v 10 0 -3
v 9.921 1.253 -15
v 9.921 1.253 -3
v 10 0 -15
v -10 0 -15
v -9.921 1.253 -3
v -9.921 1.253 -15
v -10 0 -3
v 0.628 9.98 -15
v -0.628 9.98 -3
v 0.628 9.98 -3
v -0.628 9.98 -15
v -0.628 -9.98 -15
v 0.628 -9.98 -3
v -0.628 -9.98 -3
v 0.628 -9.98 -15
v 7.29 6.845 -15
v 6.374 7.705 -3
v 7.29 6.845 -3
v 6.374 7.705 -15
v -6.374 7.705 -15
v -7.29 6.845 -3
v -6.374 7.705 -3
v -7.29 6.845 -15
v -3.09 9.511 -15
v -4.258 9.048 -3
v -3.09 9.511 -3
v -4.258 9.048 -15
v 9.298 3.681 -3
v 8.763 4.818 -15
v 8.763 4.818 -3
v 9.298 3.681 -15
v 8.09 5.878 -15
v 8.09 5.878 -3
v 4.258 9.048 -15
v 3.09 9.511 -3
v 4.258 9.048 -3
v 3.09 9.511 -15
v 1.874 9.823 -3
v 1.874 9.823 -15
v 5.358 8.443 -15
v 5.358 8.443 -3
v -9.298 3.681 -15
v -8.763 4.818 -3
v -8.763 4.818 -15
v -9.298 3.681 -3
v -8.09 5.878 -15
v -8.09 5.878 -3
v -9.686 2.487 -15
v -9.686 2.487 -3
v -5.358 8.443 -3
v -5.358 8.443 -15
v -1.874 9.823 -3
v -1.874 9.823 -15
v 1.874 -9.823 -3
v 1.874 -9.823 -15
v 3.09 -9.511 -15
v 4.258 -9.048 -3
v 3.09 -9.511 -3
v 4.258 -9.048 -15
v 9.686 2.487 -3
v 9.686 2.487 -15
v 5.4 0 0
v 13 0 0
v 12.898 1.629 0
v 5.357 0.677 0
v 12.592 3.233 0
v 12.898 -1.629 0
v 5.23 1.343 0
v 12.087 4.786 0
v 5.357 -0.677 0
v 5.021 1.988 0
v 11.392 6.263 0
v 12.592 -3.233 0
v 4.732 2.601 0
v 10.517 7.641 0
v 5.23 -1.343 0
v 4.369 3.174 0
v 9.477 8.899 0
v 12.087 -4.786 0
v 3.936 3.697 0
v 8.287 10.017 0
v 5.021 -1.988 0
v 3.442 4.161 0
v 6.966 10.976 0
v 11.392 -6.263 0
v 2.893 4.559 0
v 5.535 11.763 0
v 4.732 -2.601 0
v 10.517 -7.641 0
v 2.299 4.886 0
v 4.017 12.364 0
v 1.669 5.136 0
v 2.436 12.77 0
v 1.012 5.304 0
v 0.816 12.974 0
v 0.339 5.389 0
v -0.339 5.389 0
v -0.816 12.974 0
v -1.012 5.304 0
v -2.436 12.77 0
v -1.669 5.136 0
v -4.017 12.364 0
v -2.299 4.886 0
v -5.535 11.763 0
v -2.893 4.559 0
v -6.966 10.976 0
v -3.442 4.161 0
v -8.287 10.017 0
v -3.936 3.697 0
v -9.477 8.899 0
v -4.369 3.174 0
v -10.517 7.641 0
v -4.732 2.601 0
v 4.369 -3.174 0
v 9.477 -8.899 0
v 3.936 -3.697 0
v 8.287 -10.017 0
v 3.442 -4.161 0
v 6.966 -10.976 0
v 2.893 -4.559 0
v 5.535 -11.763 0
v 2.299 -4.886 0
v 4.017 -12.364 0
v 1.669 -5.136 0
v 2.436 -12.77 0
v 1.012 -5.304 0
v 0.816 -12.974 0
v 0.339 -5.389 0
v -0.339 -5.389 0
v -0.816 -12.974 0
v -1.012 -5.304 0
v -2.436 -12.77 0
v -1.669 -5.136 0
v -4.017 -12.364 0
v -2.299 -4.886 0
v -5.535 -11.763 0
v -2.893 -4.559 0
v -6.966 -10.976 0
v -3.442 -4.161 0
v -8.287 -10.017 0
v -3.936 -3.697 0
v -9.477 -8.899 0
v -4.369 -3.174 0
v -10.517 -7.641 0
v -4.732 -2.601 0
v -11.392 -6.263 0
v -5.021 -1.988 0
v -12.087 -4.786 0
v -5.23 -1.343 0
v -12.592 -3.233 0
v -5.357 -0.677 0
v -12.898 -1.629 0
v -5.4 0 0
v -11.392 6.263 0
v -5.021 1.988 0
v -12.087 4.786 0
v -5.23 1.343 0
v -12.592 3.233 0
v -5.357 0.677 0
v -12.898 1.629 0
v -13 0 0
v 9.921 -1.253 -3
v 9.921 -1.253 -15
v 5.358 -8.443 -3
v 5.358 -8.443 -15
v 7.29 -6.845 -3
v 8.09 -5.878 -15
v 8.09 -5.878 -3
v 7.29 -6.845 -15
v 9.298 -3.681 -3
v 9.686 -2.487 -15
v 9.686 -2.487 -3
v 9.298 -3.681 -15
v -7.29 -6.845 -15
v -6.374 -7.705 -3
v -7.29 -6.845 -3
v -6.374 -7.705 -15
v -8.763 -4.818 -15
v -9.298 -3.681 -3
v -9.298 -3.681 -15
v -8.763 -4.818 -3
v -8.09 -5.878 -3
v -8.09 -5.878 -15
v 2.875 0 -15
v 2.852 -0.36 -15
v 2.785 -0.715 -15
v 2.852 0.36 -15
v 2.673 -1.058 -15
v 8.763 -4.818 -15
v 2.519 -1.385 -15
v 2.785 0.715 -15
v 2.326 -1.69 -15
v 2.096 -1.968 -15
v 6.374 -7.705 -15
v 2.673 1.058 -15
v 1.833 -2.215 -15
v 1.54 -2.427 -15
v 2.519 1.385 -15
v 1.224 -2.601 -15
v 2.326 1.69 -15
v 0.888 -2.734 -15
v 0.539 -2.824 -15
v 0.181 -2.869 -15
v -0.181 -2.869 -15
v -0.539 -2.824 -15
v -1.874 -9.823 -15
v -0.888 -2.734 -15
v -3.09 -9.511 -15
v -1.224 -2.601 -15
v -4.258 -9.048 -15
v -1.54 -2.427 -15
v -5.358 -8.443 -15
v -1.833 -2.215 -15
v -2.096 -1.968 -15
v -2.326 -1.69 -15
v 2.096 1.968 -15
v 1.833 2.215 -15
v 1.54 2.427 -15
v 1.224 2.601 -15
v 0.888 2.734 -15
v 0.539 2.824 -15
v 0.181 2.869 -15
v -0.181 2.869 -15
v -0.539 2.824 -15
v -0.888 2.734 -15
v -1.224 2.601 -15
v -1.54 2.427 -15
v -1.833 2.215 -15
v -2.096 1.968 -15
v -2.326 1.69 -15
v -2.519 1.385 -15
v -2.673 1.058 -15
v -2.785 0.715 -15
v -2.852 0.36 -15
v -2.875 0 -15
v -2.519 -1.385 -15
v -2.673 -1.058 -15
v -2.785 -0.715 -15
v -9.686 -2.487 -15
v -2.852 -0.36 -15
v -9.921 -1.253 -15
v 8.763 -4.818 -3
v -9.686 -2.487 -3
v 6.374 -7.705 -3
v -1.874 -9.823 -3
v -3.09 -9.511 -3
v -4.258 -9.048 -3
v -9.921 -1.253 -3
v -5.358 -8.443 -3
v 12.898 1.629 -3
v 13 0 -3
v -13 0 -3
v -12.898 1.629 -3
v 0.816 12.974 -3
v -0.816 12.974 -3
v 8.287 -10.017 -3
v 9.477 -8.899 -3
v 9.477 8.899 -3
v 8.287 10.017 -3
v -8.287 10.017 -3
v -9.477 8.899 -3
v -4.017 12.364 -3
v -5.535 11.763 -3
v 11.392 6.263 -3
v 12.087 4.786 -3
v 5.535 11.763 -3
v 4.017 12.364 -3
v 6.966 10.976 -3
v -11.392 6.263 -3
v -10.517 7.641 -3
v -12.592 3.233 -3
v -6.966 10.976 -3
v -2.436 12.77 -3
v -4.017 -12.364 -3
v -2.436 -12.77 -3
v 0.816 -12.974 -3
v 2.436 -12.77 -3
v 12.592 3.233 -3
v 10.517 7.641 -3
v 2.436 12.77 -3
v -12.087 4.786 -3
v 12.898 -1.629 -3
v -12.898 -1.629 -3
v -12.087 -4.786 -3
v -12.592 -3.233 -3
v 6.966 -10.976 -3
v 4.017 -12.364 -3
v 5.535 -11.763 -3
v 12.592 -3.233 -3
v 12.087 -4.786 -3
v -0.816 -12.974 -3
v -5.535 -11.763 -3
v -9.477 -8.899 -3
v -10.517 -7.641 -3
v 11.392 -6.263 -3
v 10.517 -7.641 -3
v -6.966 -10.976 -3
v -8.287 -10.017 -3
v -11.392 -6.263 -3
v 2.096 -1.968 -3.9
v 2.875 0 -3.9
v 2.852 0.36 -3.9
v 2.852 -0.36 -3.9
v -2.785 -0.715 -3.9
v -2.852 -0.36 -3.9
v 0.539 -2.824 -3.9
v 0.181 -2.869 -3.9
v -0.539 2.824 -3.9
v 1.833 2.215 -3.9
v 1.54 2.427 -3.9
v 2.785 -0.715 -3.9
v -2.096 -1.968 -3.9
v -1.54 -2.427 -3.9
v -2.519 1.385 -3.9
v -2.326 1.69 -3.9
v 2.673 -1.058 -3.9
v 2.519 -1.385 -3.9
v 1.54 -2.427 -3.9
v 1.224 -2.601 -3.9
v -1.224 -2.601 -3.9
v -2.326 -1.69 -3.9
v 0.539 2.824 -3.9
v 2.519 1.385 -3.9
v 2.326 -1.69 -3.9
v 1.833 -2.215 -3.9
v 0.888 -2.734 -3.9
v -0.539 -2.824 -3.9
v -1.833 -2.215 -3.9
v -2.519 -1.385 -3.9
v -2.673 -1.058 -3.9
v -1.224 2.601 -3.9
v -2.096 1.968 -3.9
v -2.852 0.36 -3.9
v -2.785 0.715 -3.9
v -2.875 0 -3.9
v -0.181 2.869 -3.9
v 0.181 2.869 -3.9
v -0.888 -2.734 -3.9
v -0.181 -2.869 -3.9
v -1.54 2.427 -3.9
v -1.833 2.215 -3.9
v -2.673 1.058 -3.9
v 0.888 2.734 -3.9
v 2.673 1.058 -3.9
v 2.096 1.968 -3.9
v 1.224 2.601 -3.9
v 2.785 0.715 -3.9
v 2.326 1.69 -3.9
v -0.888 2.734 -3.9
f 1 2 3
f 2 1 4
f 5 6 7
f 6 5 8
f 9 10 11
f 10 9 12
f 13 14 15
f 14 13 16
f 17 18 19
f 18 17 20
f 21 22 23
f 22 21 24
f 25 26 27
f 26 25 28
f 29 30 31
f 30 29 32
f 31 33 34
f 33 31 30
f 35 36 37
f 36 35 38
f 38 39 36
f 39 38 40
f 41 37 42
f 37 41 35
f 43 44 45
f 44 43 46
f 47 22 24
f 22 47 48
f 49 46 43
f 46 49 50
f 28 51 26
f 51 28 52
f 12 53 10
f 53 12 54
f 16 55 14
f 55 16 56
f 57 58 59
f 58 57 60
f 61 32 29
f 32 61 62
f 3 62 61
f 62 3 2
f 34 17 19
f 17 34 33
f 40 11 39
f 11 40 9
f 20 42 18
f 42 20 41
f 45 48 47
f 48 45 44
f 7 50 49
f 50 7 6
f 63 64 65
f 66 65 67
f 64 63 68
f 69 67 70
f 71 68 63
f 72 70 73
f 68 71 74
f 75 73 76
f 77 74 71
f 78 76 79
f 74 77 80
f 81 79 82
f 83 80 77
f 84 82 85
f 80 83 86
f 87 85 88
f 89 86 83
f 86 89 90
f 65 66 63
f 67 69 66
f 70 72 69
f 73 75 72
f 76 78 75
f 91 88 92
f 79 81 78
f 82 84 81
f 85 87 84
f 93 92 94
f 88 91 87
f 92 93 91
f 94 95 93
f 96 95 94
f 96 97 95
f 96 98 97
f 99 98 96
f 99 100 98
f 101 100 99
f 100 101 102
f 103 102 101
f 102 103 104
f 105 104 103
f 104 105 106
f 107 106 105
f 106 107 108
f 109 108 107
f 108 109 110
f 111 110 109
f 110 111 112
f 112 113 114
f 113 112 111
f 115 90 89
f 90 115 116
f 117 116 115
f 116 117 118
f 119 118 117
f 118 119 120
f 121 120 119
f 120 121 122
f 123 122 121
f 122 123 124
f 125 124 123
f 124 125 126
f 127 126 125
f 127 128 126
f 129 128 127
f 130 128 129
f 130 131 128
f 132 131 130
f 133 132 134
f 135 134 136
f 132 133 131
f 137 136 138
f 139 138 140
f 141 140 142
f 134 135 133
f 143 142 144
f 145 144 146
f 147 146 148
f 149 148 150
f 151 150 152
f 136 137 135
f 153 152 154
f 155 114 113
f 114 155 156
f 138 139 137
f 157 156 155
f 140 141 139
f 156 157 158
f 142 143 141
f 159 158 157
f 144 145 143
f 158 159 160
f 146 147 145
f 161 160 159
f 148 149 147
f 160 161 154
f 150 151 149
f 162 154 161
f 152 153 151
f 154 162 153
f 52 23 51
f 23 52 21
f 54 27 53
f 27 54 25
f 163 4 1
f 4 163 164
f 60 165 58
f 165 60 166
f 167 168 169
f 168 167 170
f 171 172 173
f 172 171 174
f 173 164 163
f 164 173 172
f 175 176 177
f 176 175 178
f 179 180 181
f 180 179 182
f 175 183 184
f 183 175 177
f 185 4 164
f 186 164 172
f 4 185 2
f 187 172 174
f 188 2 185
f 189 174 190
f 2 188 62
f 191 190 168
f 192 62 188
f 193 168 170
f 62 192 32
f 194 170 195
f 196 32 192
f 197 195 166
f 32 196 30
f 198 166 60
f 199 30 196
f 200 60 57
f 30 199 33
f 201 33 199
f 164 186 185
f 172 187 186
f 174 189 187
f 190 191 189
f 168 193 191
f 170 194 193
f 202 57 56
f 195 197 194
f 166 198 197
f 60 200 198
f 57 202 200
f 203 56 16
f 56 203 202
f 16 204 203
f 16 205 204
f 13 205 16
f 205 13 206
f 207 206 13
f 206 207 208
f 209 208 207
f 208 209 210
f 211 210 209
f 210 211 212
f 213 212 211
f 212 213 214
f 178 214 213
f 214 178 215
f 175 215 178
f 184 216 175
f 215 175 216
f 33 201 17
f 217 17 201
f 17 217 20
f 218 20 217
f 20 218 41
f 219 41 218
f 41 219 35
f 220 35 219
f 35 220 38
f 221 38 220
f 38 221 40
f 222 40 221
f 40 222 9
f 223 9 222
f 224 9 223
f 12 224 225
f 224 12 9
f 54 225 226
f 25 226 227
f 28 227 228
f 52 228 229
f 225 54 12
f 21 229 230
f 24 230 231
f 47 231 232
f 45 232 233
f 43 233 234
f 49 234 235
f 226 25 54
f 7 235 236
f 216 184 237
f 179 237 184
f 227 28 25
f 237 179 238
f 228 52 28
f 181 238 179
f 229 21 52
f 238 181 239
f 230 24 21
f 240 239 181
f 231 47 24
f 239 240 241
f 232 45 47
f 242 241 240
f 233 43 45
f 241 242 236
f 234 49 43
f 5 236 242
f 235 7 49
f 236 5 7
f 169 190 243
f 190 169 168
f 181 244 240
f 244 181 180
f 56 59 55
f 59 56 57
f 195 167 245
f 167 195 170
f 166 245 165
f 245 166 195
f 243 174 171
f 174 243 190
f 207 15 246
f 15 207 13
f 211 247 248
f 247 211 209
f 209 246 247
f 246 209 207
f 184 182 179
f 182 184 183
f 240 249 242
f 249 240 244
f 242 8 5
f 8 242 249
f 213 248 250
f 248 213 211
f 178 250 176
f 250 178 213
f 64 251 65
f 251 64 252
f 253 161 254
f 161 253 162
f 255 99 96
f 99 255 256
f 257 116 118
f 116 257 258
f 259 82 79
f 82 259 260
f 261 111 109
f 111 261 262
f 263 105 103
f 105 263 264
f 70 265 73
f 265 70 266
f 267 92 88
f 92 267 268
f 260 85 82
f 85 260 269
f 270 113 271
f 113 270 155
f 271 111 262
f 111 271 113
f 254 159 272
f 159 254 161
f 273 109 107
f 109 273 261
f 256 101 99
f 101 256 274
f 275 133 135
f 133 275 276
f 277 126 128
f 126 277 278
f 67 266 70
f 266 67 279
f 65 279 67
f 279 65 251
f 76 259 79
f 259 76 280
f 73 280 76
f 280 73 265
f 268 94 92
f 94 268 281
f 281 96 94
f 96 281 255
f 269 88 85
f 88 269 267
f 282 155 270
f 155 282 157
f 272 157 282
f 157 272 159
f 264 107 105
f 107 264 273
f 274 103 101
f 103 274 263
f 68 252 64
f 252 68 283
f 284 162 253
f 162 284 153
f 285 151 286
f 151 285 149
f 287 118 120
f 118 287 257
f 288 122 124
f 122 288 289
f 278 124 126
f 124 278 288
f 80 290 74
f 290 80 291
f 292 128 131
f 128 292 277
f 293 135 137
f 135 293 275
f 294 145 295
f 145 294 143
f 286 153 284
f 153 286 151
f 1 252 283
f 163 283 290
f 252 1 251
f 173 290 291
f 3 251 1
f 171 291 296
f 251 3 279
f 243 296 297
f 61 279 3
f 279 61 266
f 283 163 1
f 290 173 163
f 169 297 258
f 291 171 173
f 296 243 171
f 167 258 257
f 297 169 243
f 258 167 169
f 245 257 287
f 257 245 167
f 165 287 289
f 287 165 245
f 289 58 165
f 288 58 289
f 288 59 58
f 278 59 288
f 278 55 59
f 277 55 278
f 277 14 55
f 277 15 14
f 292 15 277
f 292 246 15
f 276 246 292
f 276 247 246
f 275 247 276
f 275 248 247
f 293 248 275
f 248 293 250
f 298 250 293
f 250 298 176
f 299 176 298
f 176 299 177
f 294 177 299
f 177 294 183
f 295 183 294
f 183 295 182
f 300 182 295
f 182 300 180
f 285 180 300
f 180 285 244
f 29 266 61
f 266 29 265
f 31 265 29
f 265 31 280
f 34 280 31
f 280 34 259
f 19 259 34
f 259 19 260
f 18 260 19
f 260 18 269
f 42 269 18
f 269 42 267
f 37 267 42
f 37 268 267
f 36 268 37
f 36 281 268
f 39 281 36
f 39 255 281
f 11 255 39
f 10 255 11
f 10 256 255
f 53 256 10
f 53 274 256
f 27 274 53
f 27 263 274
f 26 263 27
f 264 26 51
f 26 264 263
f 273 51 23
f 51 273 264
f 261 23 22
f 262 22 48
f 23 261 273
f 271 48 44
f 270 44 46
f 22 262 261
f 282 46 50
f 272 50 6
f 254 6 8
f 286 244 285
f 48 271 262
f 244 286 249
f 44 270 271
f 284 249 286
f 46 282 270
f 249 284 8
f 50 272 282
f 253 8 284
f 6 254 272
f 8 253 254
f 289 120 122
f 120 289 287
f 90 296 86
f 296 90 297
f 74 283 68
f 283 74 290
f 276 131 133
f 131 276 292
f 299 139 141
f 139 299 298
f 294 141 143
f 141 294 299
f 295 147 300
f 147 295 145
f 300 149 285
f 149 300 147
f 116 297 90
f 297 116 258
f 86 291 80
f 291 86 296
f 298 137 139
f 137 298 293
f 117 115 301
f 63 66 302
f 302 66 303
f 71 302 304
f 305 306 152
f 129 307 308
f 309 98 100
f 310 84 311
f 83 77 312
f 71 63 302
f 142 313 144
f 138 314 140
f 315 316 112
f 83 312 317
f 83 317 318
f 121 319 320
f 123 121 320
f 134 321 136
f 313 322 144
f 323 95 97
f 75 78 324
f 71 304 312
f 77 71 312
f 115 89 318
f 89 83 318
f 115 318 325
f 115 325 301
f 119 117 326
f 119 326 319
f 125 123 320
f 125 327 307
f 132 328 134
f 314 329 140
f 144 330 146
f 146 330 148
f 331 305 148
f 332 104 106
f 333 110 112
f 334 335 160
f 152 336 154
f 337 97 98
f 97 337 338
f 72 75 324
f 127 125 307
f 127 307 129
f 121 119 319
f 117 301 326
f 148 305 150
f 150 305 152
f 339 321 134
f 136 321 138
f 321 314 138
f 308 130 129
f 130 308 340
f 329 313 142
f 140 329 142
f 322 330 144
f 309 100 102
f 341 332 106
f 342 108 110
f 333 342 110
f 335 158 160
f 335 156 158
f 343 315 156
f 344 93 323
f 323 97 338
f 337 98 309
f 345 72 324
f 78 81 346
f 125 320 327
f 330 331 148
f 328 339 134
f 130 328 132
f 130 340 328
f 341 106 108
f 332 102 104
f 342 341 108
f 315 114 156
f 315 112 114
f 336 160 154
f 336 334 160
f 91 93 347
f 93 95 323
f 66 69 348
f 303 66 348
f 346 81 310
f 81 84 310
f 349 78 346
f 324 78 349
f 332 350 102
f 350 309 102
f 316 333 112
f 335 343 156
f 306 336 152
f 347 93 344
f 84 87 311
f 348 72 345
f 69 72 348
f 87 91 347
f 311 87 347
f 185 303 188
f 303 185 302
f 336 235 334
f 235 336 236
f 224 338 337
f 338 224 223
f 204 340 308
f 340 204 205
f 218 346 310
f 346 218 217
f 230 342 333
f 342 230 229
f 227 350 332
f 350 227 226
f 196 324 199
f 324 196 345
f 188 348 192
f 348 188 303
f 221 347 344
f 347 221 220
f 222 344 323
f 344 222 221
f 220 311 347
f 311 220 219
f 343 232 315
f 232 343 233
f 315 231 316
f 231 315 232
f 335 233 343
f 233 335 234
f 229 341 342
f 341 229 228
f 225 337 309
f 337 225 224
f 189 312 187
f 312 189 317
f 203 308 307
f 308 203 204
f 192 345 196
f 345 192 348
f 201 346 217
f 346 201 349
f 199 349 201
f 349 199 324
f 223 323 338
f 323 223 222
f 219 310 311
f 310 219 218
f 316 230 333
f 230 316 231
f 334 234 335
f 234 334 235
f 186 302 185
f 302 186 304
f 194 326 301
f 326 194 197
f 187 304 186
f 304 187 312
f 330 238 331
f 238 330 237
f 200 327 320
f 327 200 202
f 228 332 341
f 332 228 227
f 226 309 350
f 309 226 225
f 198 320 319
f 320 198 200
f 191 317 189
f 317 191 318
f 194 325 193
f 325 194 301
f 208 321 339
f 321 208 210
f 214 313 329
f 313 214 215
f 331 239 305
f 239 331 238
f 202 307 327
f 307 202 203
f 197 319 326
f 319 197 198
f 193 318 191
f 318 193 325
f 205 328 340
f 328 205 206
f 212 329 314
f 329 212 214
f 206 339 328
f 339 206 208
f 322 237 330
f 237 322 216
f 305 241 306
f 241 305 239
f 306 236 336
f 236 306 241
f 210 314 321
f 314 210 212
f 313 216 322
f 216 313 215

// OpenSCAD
$fn = 50;


difference() {
	union() {
		translate(v = [0, 0, -15.0000000000]) {
			cylinder(h = 15, r = 10.0000000000);
		}
		translate(v = [0, 0, -3.0000000000]) {
			cylinder(h = 3, r = 13.0000000000);
		}
	}
	union() {
		translate(v = [0, 0, 0]) {
			rotate(a = [0, 0, 0]) {
				difference() {
					union() {
						#translate(v = [0, 0, -15.0000000000]) {
							cylinder(h = 15, r = 2.6000000000);
						}
						#translate(v = [0, 0, -3.9000000000]) {
							cylinder(h = 3.9000000000, r = 10.0000000000, r1 = 2.8750000000, r2 = 5.4000000000);
						}
						#translate(v = [0, 0, -15.0000000000]) {
							cylinder(h = 15, r = 2.8750000000);
						}
						#translate(v = [0, 0, -15.0000000000]) {
							cylinder(h = 15, r = 2.6000000000);
						}
					}
					union();
				}
			}
		}
	}
}
